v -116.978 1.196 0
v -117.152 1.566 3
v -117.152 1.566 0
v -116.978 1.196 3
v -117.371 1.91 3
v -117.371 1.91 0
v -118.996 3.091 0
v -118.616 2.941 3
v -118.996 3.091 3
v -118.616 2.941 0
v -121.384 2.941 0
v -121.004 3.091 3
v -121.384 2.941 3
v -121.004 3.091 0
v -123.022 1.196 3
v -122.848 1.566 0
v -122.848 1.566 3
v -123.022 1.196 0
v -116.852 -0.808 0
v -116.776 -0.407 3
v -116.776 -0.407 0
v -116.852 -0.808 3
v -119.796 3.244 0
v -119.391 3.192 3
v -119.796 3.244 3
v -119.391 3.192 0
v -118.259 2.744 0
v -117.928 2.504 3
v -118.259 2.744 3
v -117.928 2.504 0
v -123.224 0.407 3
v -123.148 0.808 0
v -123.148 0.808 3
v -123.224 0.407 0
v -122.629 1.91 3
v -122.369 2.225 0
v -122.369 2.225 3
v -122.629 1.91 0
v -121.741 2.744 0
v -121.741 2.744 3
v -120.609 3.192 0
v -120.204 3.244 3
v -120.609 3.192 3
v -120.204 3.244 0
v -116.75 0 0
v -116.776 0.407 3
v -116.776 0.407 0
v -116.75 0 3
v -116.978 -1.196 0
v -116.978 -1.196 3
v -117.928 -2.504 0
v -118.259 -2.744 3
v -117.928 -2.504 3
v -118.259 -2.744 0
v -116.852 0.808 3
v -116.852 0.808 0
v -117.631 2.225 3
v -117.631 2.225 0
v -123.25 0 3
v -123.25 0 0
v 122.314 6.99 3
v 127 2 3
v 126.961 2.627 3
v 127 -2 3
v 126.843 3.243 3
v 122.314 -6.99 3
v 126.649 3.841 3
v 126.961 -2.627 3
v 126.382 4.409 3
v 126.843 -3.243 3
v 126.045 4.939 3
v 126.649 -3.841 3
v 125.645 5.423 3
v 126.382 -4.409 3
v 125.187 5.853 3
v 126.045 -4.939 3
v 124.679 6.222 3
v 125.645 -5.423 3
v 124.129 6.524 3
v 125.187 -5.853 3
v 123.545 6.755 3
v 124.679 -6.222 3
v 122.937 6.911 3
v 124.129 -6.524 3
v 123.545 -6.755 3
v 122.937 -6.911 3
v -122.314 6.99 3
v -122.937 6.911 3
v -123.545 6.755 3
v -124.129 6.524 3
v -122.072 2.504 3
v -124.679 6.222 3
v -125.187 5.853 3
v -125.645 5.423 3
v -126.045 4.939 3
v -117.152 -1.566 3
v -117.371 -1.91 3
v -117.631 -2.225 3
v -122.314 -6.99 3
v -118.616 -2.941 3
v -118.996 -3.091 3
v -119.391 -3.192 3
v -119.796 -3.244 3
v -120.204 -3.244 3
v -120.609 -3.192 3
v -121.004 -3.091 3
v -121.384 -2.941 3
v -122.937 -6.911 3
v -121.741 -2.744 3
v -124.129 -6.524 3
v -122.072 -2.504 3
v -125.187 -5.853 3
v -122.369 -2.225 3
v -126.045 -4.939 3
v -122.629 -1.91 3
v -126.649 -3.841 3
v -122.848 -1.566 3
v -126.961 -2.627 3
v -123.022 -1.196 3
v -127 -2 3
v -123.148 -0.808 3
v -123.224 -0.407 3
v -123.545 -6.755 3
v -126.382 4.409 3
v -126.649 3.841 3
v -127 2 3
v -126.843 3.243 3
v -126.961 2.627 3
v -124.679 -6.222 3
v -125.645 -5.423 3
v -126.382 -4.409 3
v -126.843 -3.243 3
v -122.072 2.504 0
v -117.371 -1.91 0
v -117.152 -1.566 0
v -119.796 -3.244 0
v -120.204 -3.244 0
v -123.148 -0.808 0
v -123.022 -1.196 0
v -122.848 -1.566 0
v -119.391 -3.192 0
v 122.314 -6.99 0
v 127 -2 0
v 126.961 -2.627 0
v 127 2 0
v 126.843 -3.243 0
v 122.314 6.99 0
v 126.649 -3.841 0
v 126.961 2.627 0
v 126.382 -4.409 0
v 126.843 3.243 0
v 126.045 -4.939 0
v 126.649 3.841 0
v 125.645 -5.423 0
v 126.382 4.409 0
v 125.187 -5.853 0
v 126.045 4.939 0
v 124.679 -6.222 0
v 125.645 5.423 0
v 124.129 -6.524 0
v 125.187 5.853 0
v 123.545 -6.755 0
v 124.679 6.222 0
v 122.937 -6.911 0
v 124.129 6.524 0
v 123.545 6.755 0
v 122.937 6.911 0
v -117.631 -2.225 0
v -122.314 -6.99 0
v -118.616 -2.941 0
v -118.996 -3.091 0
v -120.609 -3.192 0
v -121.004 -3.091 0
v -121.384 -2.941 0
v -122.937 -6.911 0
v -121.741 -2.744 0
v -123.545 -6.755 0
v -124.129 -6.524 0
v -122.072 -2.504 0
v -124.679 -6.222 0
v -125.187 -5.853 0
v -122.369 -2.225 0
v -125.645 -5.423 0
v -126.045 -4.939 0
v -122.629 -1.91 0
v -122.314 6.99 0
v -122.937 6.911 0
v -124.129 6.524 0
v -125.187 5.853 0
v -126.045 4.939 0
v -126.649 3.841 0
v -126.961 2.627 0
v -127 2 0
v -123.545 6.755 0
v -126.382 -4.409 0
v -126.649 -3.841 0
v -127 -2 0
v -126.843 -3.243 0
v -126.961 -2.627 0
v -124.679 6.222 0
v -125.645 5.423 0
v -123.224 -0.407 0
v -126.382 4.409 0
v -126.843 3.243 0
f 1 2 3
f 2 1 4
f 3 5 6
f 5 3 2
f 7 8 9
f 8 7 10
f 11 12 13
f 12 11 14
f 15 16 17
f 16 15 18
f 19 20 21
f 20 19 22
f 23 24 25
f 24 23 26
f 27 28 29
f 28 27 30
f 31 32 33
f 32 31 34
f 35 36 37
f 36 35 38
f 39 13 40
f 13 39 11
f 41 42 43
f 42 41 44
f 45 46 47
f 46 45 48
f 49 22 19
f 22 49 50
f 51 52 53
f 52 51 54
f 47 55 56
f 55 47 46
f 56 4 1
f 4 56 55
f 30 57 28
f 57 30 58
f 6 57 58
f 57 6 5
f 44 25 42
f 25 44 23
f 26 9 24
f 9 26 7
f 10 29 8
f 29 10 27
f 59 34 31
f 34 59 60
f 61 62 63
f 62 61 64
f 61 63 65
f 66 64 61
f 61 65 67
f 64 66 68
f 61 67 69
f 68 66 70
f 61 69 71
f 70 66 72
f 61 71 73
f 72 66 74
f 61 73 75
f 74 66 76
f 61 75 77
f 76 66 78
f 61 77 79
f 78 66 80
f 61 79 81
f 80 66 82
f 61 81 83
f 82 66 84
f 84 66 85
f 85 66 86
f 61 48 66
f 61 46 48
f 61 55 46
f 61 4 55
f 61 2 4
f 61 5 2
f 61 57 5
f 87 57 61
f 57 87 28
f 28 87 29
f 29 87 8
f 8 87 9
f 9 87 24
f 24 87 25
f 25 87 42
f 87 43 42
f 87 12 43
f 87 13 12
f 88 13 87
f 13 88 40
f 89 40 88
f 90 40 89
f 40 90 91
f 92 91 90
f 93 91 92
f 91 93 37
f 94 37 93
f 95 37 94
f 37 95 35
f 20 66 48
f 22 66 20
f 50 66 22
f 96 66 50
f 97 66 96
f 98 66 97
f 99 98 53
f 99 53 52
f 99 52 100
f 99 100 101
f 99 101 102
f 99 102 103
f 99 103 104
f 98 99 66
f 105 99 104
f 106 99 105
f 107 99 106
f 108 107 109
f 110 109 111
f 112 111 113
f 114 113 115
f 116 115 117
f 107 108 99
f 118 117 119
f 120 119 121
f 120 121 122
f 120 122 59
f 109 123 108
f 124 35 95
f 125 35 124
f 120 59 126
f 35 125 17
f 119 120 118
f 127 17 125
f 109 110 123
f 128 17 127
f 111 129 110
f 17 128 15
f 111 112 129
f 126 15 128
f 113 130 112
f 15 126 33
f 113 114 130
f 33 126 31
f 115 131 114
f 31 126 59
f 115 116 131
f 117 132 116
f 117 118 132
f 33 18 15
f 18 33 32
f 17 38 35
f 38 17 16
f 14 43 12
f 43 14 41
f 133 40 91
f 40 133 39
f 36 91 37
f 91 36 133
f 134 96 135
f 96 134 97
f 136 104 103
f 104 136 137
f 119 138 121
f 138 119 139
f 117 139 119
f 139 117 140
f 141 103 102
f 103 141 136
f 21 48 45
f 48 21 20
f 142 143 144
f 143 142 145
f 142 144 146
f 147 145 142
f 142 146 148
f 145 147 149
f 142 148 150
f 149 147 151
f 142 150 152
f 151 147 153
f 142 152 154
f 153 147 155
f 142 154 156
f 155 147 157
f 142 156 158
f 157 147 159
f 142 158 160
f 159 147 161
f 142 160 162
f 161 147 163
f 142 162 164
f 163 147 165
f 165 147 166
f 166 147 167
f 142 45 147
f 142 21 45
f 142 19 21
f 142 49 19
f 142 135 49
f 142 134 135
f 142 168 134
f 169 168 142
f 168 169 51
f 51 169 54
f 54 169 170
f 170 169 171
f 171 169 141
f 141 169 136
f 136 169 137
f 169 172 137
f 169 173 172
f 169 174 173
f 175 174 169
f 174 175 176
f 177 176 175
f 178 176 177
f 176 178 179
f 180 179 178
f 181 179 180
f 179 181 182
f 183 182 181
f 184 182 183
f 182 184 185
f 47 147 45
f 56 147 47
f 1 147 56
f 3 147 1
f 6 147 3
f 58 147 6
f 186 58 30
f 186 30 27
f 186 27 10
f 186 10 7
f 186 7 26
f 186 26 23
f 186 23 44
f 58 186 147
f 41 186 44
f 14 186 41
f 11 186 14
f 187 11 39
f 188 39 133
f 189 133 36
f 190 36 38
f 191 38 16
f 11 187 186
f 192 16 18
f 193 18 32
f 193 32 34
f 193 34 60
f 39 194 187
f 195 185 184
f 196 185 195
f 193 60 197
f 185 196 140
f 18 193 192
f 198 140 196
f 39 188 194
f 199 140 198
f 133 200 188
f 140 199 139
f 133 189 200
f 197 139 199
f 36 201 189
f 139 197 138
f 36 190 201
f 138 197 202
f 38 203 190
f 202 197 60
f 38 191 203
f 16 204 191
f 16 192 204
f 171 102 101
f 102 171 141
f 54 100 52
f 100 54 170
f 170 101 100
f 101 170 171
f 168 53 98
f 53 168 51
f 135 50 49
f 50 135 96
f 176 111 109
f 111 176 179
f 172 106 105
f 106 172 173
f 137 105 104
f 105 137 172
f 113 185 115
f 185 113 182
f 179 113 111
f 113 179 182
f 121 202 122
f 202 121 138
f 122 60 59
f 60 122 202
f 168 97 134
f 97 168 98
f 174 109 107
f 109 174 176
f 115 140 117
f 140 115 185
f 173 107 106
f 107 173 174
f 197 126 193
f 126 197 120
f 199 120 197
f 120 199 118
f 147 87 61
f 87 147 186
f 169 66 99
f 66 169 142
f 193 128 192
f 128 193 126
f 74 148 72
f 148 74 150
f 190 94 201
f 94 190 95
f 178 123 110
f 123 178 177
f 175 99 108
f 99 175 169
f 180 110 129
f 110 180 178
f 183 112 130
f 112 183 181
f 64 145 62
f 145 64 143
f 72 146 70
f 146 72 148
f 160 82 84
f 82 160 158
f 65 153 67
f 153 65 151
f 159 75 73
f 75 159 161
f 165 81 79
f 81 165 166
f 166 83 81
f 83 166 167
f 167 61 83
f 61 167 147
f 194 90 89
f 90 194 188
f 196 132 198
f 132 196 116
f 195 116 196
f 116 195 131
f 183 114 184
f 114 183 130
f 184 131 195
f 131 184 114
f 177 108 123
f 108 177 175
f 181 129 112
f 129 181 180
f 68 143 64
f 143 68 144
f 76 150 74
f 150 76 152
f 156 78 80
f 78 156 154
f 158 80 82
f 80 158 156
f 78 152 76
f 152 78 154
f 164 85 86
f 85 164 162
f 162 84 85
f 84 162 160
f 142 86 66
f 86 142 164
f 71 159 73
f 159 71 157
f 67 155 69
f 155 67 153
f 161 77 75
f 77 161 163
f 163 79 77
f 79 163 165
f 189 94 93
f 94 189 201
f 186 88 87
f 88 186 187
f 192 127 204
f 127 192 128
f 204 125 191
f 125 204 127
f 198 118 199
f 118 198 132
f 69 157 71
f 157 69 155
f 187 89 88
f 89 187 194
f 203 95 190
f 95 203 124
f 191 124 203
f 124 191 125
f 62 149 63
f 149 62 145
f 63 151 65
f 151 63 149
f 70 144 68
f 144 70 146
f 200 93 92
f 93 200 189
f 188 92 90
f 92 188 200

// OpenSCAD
$fn = 50;


difference() {
	union() {
		hull() {
			translate(v = [-122.0000000000, 2.0000000000, 0]) {
				cylinder(h = 3, r = 5);
			}
			translate(v = [122.0000000000, 2.0000000000, 0]) {
				cylinder(h = 3, r = 5);
			}
			translate(v = [-122.0000000000, -2.0000000000, 0]) {
				cylinder(h = 3, r = 5);
			}
			translate(v = [122.0000000000, -2.0000000000, 0]) {
				cylinder(h = 3, r = 5);
			}
		}
	}
	union() {
		translate(v = [-120.0000000000, 0.0000000000, 0]) {
			cylinder(h = 3, r = 3.2500000000);
		}
		translate(v = [-120.0000000000, 0.0000000000, 0]) {
			cylinder(h = 3, r = 1.8000000000);
		}
		translate(v = [-120.0000000000, 0.0000000000, 0]) {
			cylinder(h = 3, r = 1.8000000000);
		}
		translate(v = [-120.0000000000, 0.0000000000, 0]) {
			cylinder(h = 3, r = 1.8000000000);
		}
	}
}
